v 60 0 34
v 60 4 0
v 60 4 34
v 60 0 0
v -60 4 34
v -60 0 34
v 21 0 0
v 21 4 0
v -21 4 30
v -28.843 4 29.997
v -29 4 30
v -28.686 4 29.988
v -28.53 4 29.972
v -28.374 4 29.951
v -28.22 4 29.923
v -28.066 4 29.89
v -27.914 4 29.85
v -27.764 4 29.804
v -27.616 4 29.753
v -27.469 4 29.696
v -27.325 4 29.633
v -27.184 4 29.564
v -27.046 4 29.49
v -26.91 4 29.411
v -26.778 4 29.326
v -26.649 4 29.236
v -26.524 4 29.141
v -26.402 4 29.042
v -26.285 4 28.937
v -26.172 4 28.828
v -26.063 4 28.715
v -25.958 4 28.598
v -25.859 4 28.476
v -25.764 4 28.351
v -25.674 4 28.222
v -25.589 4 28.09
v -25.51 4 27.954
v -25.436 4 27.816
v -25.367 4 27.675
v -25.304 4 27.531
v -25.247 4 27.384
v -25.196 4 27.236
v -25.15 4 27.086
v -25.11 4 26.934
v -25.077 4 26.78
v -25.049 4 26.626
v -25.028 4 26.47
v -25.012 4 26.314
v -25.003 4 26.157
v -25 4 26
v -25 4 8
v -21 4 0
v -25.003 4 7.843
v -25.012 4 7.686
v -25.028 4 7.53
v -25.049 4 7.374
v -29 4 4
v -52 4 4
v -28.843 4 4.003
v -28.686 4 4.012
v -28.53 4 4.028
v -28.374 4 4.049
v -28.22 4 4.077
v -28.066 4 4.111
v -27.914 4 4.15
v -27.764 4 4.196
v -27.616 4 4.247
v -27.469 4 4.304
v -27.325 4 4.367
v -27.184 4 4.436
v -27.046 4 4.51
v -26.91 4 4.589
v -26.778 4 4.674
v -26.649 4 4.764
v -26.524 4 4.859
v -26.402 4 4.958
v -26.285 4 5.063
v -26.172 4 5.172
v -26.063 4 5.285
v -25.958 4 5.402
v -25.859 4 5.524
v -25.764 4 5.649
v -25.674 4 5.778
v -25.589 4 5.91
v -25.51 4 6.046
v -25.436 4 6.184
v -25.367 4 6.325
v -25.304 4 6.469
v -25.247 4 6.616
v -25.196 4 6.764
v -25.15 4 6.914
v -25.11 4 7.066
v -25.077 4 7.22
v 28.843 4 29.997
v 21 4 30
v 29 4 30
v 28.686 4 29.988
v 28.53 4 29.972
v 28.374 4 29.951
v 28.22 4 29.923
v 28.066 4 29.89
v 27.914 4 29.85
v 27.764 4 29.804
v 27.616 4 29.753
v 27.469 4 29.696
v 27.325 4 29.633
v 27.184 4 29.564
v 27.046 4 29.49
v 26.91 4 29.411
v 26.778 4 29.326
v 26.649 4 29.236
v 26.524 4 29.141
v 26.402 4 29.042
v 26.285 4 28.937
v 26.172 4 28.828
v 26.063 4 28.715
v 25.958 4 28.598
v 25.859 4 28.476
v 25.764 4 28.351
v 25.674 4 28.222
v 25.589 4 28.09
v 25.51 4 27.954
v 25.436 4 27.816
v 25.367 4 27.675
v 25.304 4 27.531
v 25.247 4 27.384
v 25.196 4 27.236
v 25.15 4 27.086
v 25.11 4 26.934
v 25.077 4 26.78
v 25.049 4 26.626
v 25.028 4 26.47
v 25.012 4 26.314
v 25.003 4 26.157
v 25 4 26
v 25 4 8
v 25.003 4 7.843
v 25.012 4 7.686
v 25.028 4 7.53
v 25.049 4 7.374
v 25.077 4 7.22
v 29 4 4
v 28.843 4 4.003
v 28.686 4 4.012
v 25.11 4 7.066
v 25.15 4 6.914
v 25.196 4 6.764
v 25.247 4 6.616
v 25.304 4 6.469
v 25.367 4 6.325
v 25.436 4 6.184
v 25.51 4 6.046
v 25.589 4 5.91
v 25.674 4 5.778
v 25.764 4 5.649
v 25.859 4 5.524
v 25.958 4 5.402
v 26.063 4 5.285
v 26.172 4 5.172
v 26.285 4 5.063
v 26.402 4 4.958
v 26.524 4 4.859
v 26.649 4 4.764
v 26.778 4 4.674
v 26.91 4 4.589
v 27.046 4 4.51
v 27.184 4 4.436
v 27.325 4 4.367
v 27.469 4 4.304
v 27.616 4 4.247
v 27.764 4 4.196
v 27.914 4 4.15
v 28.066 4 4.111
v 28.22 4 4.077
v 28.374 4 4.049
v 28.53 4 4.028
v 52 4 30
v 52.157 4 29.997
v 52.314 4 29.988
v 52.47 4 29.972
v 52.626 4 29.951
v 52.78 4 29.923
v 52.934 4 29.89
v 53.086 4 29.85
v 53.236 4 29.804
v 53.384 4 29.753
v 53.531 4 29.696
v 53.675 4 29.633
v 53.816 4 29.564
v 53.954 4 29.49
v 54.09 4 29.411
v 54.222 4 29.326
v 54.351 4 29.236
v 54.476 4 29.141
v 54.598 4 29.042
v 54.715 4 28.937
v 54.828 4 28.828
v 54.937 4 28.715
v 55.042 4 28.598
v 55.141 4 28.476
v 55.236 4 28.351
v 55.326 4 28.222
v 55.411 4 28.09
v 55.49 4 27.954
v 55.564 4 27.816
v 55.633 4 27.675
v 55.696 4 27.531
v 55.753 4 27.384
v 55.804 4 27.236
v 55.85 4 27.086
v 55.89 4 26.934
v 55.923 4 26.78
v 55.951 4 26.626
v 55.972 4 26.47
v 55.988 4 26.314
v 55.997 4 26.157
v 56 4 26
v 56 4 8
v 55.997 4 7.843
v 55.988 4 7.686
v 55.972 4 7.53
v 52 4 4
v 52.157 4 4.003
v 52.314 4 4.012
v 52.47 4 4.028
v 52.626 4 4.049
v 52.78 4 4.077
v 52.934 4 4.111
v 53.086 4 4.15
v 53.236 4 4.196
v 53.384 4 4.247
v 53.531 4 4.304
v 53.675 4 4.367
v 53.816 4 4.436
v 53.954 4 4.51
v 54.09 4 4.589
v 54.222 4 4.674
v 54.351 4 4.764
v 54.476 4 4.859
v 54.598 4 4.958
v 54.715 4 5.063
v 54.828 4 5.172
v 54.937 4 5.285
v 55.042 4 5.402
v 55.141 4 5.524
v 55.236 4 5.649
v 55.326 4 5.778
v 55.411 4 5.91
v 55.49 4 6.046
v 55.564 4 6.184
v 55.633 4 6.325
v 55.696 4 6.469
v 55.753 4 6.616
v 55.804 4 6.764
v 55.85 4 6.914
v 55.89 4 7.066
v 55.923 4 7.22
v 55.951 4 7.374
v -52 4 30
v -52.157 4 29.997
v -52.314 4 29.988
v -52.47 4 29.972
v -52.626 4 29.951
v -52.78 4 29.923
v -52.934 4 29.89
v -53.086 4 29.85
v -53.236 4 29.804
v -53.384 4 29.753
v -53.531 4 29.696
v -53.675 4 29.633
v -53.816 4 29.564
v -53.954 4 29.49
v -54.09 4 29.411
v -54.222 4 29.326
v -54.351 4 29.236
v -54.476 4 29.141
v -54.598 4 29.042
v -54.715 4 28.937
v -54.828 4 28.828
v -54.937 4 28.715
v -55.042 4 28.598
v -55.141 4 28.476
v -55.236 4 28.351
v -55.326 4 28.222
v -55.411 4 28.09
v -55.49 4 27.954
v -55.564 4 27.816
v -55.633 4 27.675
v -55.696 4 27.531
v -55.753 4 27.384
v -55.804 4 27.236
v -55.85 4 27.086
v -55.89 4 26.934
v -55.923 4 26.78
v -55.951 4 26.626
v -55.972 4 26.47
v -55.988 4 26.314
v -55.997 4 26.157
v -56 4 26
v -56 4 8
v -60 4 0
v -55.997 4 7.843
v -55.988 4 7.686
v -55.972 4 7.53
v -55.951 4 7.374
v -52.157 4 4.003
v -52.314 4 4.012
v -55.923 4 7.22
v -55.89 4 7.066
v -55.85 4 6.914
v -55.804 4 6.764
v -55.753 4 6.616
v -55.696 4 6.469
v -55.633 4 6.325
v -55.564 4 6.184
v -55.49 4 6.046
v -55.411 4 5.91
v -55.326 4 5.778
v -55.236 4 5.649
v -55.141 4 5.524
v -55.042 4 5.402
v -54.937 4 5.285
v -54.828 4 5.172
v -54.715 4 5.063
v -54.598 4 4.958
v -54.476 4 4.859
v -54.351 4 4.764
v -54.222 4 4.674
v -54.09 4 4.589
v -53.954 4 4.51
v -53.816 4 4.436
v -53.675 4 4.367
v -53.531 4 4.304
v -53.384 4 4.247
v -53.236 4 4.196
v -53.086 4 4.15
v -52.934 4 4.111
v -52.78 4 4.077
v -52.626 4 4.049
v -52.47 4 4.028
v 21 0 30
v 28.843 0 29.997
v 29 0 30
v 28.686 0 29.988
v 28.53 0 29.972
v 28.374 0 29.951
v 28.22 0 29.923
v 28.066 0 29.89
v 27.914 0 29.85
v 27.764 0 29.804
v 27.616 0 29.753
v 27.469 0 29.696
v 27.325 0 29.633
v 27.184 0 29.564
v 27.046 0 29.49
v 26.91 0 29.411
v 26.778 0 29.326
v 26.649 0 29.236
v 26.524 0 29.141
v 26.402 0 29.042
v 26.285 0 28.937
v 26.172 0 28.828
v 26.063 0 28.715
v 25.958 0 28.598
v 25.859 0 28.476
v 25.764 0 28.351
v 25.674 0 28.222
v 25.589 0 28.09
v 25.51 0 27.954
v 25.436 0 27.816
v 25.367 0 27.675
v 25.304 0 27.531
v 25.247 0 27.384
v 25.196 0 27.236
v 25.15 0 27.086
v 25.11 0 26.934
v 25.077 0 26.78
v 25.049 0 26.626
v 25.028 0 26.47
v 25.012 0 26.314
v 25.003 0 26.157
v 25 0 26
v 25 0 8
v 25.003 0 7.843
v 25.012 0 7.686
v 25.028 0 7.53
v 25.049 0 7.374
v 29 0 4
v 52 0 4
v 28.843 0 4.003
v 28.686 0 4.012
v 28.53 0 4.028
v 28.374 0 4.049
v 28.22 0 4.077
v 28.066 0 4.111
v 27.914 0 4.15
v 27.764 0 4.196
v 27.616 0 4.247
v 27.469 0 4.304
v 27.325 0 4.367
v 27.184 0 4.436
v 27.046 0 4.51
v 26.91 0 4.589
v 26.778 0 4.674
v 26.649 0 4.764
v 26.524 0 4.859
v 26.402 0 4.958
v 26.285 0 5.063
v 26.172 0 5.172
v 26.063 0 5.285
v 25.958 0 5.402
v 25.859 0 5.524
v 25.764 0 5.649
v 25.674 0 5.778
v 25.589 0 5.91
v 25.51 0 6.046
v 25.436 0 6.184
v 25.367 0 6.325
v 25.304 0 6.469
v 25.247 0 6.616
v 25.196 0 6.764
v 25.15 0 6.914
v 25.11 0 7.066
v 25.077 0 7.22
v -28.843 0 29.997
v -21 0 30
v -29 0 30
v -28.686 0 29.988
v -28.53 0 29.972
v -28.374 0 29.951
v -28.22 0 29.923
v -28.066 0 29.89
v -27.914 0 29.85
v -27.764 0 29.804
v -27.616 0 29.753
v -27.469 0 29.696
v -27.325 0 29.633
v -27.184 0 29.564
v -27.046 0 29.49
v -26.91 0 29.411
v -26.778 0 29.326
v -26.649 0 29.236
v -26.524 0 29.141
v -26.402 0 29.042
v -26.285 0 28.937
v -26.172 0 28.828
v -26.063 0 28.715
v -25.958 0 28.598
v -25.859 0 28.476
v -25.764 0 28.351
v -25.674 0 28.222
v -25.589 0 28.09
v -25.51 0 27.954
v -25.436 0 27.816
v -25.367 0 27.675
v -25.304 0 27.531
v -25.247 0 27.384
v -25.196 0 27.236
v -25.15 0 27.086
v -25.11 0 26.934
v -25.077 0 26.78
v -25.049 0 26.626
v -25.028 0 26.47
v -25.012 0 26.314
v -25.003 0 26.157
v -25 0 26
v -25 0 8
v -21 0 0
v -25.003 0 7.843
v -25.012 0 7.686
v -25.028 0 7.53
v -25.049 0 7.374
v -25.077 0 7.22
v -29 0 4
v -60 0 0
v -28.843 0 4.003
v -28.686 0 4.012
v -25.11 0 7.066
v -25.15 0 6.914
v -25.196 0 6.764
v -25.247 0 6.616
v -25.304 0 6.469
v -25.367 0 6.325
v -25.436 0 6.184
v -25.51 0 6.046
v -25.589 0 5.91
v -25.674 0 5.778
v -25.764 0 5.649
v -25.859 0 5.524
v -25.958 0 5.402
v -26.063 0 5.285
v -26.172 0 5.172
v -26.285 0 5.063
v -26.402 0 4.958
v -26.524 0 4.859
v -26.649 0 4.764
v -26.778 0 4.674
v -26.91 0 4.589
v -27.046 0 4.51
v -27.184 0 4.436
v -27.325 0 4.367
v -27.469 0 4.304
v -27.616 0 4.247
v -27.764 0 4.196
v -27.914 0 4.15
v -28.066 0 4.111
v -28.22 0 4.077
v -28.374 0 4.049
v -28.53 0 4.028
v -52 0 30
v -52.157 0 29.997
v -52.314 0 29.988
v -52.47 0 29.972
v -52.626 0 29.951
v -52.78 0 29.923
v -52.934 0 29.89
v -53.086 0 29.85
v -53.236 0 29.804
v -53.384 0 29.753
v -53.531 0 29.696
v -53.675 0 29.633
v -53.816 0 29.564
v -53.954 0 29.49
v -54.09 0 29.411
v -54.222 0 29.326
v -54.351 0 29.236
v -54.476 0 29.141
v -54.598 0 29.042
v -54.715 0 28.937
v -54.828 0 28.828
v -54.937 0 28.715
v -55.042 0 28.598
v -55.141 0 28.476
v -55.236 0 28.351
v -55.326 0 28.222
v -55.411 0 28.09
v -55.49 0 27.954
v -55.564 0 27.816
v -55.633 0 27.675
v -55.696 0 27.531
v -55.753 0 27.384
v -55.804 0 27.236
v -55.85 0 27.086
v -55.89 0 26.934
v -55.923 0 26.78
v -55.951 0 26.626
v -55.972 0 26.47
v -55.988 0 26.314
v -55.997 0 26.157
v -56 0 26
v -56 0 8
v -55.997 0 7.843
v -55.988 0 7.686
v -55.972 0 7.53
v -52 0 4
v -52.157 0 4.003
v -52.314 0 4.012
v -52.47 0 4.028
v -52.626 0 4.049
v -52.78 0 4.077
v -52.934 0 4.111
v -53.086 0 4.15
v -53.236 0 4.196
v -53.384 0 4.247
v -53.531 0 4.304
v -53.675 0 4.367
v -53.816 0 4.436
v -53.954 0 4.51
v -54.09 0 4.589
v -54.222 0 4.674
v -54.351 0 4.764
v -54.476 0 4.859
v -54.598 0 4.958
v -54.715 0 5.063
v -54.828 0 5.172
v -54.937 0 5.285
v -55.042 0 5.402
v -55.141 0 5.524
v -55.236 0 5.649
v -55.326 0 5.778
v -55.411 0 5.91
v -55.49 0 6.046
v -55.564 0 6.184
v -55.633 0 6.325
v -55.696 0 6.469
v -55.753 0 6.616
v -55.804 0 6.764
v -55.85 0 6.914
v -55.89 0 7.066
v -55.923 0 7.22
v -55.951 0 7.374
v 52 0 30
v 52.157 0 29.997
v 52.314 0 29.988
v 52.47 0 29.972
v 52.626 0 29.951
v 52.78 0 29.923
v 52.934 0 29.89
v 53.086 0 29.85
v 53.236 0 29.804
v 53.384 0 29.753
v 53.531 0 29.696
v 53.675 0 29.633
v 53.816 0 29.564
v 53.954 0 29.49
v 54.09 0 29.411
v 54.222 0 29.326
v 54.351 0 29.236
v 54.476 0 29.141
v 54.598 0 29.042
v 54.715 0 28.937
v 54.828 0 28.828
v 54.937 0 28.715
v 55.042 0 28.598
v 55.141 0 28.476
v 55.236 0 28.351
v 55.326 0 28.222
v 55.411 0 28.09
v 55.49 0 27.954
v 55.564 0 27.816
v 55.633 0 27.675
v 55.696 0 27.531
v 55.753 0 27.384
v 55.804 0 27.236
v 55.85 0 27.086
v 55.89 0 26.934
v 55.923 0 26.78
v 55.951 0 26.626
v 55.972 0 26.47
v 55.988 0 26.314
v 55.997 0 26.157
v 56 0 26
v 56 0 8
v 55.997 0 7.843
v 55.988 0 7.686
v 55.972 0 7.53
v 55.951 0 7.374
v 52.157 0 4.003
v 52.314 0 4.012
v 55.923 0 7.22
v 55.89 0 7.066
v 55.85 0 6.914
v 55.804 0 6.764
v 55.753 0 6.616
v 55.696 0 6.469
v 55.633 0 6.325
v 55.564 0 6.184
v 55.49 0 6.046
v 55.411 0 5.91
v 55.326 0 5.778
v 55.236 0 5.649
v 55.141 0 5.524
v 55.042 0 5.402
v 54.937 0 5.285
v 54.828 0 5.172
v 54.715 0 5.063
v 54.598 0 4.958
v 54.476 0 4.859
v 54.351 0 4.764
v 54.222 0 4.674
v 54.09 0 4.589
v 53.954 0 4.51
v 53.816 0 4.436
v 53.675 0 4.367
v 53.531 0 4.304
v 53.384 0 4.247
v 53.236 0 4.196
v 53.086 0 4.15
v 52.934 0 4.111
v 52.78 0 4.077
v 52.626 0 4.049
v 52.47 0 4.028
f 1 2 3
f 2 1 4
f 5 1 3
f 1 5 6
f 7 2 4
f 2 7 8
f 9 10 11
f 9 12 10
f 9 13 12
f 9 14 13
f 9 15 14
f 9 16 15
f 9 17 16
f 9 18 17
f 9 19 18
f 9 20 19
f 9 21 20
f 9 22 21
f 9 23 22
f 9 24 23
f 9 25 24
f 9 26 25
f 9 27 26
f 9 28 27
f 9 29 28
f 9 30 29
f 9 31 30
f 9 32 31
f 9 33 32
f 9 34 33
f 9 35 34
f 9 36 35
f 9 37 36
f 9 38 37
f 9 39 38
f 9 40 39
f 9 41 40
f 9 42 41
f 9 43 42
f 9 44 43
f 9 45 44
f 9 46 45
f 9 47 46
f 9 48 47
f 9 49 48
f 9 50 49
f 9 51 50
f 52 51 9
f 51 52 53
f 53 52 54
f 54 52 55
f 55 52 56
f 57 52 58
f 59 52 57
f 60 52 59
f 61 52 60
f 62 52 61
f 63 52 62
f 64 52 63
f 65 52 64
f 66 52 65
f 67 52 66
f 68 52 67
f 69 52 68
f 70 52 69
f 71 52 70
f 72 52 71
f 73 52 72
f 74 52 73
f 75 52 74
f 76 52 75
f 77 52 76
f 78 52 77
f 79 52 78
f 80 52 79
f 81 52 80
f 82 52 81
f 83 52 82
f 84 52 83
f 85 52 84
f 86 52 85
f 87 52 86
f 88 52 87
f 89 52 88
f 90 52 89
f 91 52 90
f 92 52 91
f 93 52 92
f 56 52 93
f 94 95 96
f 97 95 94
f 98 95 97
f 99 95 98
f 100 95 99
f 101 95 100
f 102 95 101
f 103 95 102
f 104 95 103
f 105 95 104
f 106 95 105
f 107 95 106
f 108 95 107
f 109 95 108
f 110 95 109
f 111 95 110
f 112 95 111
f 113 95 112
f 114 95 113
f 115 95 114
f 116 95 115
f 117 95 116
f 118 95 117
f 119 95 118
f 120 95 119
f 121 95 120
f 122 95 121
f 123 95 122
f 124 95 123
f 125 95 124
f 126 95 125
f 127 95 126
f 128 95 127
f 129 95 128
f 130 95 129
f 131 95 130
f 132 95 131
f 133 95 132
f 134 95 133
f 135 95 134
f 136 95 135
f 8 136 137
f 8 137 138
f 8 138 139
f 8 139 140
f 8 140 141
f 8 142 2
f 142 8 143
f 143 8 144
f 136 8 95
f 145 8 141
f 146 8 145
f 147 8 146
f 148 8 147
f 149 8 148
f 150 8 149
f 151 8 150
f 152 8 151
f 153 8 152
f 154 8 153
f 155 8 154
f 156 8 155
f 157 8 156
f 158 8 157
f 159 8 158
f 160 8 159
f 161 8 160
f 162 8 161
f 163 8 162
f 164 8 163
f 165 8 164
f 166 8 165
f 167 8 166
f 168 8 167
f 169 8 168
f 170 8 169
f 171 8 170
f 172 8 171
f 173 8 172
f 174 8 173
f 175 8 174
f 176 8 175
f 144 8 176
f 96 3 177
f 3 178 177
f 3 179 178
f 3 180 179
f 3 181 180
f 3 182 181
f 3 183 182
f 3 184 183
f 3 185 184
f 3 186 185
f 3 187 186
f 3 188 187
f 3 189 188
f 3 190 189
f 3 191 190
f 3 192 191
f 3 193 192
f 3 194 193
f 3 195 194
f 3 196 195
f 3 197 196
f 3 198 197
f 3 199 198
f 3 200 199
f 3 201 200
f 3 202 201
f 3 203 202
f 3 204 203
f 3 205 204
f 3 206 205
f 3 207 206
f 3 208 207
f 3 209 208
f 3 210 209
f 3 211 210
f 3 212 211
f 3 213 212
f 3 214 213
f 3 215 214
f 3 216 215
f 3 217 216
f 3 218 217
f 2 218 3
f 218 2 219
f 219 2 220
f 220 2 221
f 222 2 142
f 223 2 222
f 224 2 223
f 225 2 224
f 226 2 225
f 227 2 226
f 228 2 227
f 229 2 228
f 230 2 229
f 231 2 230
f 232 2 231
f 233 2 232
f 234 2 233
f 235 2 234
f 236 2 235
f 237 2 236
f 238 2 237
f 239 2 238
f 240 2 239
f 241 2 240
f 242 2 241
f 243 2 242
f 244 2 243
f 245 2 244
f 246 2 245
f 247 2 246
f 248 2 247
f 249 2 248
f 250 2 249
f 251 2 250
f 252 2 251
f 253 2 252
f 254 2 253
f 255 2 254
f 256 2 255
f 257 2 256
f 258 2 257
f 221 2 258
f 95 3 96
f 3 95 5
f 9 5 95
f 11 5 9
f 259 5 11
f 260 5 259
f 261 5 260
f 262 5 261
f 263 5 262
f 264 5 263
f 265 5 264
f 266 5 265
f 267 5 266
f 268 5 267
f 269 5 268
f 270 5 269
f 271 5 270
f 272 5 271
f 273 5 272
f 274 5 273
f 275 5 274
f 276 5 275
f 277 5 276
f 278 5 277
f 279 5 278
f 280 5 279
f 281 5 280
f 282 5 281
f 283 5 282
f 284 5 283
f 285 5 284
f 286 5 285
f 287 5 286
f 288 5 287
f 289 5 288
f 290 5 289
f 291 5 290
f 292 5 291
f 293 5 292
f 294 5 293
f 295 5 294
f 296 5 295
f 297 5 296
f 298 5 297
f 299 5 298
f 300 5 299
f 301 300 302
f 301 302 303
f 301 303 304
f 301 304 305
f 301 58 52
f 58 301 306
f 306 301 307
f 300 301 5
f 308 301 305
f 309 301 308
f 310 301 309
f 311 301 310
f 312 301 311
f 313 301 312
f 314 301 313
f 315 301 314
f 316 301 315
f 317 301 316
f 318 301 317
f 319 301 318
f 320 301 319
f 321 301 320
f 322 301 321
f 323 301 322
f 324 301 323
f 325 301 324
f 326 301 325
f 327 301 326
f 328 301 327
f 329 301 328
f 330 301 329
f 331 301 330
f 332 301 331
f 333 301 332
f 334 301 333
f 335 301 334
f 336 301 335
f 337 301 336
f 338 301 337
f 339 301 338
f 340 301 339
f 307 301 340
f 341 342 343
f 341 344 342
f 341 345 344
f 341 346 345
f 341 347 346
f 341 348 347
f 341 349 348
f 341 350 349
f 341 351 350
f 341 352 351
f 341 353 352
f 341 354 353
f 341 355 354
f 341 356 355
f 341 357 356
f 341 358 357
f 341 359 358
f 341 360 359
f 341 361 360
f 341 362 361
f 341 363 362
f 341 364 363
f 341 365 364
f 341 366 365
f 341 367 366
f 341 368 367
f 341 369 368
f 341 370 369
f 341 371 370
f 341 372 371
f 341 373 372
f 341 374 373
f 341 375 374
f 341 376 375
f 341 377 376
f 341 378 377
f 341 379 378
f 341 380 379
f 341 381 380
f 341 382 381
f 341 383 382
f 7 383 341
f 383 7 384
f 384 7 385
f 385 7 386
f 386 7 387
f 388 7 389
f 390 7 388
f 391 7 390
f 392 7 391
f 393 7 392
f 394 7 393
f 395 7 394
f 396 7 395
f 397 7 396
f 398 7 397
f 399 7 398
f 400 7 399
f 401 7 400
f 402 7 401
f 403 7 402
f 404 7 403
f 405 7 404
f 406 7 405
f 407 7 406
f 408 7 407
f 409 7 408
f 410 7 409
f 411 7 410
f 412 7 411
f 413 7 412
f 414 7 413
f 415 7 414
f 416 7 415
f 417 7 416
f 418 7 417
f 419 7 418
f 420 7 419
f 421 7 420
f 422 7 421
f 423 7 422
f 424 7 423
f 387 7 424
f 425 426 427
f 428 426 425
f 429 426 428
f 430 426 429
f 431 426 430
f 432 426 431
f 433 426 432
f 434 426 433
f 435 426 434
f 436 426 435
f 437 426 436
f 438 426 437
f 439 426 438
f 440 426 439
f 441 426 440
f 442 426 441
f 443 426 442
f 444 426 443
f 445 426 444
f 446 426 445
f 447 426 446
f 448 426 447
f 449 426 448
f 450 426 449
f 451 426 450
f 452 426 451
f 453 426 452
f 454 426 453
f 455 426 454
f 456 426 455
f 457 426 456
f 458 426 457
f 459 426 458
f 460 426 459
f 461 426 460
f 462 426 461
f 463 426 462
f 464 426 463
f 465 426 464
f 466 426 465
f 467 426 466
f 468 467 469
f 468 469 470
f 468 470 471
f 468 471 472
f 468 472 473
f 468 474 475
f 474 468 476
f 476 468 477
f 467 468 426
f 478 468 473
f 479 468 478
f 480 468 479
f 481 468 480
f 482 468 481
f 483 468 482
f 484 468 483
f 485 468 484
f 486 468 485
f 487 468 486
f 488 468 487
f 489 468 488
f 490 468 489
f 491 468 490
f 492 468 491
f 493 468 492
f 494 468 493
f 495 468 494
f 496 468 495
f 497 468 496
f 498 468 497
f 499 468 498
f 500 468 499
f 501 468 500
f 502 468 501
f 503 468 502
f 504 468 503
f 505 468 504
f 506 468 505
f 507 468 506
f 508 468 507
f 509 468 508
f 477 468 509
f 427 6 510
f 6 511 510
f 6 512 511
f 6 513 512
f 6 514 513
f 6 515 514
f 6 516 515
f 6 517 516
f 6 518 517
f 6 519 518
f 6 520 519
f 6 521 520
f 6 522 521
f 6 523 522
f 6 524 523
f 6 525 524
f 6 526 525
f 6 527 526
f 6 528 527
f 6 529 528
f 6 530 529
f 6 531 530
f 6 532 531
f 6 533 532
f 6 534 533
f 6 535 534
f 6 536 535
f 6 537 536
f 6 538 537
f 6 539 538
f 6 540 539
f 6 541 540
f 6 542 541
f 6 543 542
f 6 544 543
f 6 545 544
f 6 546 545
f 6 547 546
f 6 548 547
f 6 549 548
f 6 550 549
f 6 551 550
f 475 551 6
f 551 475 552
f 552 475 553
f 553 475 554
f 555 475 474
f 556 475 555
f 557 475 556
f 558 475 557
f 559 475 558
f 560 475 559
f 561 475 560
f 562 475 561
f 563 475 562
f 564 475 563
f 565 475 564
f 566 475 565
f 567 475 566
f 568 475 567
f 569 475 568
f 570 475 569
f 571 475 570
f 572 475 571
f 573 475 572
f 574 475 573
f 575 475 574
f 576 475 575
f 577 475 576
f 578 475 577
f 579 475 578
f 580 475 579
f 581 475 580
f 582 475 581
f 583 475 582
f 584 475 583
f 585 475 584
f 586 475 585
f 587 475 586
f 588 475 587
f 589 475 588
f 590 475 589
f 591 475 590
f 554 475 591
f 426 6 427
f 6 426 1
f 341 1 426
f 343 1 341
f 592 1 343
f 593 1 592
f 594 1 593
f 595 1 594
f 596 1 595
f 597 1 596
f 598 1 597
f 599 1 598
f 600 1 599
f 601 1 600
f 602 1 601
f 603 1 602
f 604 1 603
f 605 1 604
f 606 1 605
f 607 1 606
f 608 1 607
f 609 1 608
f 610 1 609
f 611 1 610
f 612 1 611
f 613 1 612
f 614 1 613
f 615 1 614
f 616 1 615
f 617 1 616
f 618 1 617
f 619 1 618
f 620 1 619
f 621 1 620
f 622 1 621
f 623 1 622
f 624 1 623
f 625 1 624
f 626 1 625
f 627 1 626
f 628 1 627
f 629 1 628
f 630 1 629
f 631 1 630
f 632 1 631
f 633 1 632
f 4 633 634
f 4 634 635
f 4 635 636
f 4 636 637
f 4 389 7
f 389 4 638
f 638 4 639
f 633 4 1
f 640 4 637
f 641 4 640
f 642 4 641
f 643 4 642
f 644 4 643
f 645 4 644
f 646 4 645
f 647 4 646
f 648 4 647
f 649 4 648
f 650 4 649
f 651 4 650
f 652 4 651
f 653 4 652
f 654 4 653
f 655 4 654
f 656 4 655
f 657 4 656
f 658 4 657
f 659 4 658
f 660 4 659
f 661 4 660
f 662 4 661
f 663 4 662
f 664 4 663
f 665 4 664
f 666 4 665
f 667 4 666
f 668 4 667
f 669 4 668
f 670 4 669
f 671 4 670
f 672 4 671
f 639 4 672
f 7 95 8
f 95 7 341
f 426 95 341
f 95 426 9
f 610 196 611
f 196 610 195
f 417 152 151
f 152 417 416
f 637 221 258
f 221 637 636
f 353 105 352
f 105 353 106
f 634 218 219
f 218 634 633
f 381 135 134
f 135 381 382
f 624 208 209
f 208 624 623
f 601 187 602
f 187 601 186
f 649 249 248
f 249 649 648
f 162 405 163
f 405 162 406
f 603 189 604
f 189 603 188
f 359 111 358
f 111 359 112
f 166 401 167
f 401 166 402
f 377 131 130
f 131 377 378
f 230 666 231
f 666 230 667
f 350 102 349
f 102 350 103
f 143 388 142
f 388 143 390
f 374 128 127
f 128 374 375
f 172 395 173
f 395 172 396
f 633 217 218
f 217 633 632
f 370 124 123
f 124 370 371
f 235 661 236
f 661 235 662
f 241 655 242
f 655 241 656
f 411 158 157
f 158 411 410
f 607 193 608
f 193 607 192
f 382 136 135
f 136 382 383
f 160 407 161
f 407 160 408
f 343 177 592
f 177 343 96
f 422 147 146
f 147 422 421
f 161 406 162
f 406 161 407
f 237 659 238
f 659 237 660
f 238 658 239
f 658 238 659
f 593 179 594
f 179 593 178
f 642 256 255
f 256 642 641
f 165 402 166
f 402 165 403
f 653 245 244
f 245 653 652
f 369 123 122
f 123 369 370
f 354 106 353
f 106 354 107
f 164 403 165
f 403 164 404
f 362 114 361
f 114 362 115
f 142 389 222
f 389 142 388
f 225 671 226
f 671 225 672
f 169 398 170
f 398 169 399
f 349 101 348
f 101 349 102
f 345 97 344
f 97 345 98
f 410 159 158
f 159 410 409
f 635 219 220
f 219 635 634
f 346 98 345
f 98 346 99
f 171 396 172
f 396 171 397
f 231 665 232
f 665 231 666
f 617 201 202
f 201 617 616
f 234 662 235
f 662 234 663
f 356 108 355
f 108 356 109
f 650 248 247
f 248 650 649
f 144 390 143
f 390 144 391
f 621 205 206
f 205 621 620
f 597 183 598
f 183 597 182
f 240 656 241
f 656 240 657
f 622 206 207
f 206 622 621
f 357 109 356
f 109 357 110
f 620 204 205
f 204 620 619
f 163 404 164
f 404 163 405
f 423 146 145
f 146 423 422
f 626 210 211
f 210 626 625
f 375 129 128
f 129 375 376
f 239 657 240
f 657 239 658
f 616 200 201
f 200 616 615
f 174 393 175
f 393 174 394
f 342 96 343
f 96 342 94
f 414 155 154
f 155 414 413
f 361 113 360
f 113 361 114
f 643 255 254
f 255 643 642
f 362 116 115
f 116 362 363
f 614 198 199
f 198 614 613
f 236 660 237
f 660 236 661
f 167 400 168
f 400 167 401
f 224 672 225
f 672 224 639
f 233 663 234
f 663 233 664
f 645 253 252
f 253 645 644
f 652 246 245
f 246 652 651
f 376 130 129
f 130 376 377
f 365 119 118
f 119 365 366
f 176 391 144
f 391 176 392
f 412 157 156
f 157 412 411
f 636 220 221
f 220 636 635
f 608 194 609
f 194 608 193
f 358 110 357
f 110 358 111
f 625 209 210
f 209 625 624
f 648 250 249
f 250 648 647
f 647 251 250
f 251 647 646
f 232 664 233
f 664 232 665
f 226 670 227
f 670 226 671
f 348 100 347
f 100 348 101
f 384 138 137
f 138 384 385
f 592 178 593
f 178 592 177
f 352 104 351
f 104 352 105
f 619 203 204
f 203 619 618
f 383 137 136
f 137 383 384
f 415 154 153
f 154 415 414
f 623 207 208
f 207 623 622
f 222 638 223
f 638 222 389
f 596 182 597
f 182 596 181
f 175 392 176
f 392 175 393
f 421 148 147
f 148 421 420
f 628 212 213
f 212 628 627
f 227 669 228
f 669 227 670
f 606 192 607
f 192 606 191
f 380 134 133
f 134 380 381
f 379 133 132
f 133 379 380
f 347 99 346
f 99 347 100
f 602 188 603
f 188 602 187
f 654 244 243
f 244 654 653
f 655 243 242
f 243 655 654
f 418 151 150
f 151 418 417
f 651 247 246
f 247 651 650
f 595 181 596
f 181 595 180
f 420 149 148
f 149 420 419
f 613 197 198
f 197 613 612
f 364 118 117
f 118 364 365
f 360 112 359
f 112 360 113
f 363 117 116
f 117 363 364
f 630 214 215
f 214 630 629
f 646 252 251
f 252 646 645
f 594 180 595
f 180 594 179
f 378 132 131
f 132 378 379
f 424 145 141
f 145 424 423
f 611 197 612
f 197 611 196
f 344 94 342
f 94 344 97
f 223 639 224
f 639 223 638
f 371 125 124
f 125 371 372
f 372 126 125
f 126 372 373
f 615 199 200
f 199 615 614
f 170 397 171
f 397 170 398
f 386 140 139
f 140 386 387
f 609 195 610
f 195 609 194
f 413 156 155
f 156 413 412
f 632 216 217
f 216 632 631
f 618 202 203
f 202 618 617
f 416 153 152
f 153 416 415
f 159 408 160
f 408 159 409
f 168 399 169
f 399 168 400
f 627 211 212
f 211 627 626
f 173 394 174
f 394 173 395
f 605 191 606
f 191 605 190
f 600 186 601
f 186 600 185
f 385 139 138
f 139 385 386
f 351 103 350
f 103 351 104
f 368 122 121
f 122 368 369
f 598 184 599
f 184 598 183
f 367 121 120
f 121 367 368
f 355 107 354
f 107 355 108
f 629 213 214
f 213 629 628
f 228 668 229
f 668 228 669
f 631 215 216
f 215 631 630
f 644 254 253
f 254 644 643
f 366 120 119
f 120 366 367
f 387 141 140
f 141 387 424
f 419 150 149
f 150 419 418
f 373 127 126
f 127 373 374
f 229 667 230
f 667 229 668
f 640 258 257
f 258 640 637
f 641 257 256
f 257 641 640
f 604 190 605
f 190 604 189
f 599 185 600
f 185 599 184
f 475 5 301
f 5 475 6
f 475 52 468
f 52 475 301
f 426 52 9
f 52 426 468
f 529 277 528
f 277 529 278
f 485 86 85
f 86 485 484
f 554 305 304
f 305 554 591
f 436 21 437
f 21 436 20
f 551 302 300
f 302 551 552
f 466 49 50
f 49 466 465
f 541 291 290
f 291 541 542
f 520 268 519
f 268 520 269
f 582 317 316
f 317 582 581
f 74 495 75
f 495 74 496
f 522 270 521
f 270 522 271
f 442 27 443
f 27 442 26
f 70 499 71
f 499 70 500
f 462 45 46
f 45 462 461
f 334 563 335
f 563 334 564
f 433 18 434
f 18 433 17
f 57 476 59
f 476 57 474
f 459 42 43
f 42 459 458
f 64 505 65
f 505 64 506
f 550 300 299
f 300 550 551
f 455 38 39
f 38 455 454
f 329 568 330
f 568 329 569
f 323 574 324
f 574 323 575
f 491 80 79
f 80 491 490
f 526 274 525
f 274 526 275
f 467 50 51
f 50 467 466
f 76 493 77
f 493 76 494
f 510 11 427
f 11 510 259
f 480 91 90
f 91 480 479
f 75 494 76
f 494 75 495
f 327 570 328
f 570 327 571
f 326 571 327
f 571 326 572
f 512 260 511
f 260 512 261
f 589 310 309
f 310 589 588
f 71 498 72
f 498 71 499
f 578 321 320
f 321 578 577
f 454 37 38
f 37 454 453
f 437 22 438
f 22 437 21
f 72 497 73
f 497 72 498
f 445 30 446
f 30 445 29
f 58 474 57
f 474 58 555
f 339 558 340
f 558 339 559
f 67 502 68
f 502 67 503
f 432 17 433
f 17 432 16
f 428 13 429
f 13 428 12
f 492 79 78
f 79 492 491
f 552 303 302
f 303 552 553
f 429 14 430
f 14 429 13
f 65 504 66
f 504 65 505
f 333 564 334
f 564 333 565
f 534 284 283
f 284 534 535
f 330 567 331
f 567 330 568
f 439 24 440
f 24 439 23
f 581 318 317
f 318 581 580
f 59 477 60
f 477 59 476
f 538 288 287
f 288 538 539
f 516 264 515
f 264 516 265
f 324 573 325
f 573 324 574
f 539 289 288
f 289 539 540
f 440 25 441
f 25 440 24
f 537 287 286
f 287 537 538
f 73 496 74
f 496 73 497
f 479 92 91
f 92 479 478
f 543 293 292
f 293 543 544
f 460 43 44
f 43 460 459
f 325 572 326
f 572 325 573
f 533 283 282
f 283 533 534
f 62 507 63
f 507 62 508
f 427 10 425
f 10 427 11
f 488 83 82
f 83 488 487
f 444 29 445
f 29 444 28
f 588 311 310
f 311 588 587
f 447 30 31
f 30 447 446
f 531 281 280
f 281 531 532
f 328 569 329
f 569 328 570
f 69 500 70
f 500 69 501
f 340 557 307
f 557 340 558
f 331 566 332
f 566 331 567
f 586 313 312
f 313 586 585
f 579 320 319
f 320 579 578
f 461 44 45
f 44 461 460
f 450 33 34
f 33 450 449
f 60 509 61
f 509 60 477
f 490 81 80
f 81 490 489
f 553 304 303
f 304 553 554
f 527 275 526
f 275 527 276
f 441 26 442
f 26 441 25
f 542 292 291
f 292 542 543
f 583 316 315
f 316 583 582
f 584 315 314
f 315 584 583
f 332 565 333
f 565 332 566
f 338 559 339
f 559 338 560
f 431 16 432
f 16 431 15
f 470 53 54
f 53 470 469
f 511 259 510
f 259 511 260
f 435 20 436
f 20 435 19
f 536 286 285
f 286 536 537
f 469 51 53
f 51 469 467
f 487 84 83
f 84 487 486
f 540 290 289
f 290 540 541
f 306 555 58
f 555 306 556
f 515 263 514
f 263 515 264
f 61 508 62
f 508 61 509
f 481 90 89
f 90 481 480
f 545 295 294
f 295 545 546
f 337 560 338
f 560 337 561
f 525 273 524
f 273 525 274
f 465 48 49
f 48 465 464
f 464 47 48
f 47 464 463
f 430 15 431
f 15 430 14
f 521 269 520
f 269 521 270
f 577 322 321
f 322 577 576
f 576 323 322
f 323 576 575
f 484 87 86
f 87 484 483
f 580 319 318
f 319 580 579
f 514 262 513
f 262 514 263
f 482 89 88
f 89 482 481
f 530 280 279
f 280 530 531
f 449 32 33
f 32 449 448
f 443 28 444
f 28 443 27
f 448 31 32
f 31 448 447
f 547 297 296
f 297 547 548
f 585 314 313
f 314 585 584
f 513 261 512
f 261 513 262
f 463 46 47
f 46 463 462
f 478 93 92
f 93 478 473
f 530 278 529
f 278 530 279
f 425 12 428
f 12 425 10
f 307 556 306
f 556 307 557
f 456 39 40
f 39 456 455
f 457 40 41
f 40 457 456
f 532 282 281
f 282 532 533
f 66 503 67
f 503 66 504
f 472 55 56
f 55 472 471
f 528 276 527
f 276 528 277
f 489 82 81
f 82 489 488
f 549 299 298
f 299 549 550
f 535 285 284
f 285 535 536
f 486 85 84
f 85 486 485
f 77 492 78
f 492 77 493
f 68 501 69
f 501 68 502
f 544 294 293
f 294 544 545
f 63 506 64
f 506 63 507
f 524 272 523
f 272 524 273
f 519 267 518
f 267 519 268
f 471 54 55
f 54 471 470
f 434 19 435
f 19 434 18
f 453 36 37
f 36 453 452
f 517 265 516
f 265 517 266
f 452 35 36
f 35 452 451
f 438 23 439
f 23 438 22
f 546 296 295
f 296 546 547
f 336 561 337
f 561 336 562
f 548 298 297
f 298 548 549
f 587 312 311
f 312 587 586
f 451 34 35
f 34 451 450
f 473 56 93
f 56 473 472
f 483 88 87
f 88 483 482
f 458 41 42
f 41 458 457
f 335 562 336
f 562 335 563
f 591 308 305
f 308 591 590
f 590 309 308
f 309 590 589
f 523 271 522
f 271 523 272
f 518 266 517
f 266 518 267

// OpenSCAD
$fa = 1;
$fs = 0.4;
$fn = 160;

tot_width = 120.00;
server_thickness = 42.00;

overlap_height = 30.00;
thickness = 4.00;
extra_height = thickness;

rr = 4;

module half()
{
    difference () {

        difference () {
            cube ([tot_width/2, thickness, overlap_height+extra_height]);
            translate([-server_thickness/2, -thickness/2, -overlap_height]) cube ([server_thickness, thickness*2, overlap_height*2]);
        }

        translate([server_thickness/2+rr+thickness, 1.5*thickness, thickness+rr]) rotate ([90, 0, 0])
        hull () {
            ww = tot_width/2-server_thickness/2-2*rr-2*thickness;
            hh = overlap_height+extra_height-2*rr-2*thickness;
          translate([0,0,0]) cylinder(r=rr,h=thickness*2);
          translate([ww,0,0]) cylinder(r=rr,h=thickness*2);
          translate([ww,hh,0]) cylinder(r=rr,h=thickness*2);
          translate([0,hh,0]) cylinder(r=rr,h=thickness*2);
        }
    }

}

half();
mirror([1, 0, 0]) half();
